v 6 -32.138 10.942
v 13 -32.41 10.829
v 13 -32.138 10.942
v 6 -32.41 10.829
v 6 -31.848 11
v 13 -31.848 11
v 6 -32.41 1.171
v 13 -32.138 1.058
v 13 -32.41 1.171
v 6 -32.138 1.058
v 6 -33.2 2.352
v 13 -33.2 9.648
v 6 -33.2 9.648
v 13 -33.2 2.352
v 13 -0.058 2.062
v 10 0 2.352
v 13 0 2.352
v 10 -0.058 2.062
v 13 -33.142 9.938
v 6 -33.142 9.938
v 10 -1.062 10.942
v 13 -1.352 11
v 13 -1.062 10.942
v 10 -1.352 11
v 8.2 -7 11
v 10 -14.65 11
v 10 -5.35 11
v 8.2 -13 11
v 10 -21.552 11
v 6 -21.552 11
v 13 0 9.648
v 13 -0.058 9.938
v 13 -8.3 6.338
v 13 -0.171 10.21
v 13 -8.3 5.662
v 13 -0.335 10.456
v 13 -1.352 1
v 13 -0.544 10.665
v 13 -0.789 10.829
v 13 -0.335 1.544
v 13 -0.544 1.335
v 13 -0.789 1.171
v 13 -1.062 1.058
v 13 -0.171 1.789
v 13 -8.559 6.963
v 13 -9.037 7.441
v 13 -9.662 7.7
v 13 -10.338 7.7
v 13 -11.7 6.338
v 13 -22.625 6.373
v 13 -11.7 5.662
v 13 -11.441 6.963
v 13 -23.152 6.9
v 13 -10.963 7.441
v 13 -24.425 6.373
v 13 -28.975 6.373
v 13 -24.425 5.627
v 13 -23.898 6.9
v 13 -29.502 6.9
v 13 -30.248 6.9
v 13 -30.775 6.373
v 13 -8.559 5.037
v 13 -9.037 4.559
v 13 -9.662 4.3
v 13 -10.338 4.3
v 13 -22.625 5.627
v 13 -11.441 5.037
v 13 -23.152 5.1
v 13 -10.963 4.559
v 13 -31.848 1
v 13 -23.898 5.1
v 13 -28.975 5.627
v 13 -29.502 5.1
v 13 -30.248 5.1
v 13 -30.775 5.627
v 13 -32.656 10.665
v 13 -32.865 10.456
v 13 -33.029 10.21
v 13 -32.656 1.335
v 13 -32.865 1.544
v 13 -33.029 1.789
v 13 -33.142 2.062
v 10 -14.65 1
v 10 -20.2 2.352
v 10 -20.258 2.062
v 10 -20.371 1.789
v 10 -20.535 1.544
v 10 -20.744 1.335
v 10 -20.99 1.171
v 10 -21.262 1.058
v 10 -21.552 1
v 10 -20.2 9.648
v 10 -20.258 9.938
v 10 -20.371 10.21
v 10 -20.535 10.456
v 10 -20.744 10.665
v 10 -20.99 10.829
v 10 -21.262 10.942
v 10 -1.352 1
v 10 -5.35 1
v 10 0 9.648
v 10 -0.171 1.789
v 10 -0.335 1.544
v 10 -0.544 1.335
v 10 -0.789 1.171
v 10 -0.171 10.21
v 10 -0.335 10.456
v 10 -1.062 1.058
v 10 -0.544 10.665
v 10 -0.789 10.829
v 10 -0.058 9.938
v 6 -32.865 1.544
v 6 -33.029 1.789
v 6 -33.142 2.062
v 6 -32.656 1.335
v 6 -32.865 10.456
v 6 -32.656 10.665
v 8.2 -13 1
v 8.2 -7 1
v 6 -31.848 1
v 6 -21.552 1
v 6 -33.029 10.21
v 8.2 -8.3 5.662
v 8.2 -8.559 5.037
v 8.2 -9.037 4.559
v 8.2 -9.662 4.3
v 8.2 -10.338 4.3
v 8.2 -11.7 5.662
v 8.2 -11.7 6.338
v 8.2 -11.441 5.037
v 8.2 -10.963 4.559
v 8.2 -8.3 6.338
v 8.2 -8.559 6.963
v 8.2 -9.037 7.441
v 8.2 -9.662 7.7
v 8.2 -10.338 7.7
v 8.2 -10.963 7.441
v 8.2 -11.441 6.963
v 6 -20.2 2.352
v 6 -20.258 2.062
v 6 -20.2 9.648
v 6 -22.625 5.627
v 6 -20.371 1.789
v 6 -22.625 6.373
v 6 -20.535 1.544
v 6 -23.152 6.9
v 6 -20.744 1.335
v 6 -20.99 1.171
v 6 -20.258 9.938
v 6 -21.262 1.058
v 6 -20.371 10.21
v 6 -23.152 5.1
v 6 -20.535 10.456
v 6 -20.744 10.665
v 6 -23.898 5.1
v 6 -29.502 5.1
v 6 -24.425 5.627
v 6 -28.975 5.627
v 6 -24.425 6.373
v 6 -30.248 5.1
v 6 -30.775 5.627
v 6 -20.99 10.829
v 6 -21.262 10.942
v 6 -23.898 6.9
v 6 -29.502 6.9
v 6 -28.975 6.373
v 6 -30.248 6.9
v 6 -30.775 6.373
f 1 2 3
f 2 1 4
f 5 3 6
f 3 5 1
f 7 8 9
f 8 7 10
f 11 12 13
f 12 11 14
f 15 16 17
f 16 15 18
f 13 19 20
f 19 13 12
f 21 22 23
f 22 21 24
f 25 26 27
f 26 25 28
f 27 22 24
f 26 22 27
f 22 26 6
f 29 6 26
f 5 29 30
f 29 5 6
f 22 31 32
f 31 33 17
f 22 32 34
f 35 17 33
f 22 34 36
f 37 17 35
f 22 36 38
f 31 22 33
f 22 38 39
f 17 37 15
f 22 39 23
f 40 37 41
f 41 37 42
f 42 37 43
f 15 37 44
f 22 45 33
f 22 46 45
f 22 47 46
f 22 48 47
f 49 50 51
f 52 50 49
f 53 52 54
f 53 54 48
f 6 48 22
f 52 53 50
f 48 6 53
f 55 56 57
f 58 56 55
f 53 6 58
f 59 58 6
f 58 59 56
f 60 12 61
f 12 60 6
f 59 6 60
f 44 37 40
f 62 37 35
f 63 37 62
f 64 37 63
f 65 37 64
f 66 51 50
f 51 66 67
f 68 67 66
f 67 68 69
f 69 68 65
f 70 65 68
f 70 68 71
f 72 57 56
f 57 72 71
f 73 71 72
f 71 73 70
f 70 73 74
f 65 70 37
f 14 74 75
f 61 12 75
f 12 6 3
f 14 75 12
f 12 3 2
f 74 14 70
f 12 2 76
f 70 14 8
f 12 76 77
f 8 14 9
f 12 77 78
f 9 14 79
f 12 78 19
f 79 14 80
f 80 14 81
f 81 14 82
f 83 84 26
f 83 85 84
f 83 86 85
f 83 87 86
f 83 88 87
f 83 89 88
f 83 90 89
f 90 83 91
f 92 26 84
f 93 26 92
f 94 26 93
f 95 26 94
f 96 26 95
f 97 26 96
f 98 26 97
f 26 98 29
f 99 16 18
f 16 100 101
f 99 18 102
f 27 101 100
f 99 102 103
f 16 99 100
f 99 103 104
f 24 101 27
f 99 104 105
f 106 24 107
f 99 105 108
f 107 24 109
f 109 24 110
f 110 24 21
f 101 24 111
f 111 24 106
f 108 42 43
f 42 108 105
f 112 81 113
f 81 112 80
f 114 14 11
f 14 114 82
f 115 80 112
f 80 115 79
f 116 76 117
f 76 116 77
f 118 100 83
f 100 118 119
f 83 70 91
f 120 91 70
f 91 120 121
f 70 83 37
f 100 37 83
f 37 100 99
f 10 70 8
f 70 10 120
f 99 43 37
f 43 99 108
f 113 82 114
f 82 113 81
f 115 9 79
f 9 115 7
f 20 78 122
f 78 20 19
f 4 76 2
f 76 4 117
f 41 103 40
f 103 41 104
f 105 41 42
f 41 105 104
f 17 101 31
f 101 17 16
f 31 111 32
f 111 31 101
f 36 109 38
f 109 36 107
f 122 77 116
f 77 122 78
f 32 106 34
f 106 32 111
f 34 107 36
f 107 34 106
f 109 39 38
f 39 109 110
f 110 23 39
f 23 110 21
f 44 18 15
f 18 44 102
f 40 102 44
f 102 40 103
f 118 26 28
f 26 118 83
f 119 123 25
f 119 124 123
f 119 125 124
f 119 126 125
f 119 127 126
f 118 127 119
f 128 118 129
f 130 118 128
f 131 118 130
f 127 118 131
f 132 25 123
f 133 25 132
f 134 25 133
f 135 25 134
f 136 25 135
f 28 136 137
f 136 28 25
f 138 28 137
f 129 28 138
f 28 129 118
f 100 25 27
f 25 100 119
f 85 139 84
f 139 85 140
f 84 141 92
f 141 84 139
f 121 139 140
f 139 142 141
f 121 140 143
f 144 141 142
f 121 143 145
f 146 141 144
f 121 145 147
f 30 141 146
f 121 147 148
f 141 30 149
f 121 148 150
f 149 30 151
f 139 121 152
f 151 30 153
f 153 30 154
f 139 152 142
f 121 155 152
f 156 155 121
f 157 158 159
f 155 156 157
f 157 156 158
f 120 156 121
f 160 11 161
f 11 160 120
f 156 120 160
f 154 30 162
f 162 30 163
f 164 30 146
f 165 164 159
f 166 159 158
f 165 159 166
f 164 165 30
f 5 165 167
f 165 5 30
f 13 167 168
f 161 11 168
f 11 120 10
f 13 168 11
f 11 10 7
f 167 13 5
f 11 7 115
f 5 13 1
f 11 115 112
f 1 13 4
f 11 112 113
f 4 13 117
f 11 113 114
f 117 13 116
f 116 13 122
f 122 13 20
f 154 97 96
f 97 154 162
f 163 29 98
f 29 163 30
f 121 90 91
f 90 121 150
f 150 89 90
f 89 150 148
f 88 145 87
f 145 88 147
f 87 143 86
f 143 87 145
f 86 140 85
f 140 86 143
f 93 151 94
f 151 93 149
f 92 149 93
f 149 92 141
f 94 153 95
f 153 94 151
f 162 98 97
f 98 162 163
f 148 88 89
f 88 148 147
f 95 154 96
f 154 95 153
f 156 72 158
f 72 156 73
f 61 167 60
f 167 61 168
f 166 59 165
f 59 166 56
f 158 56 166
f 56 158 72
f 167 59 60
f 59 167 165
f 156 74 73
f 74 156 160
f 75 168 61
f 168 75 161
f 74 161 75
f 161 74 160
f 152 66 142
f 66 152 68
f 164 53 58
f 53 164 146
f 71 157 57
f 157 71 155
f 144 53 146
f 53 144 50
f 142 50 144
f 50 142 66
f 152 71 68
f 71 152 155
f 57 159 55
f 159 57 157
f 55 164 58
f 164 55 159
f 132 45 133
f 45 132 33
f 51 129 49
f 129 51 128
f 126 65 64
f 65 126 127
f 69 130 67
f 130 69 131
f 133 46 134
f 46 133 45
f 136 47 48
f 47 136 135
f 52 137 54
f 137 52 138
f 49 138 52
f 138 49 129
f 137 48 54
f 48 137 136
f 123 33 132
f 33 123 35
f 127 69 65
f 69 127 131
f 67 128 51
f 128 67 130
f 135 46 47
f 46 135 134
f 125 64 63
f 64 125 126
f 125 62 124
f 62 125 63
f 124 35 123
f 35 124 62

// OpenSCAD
use <../moar-wheels.scad>;

rotate([90,0,0]) {
  endstop_flag_mount();
}
